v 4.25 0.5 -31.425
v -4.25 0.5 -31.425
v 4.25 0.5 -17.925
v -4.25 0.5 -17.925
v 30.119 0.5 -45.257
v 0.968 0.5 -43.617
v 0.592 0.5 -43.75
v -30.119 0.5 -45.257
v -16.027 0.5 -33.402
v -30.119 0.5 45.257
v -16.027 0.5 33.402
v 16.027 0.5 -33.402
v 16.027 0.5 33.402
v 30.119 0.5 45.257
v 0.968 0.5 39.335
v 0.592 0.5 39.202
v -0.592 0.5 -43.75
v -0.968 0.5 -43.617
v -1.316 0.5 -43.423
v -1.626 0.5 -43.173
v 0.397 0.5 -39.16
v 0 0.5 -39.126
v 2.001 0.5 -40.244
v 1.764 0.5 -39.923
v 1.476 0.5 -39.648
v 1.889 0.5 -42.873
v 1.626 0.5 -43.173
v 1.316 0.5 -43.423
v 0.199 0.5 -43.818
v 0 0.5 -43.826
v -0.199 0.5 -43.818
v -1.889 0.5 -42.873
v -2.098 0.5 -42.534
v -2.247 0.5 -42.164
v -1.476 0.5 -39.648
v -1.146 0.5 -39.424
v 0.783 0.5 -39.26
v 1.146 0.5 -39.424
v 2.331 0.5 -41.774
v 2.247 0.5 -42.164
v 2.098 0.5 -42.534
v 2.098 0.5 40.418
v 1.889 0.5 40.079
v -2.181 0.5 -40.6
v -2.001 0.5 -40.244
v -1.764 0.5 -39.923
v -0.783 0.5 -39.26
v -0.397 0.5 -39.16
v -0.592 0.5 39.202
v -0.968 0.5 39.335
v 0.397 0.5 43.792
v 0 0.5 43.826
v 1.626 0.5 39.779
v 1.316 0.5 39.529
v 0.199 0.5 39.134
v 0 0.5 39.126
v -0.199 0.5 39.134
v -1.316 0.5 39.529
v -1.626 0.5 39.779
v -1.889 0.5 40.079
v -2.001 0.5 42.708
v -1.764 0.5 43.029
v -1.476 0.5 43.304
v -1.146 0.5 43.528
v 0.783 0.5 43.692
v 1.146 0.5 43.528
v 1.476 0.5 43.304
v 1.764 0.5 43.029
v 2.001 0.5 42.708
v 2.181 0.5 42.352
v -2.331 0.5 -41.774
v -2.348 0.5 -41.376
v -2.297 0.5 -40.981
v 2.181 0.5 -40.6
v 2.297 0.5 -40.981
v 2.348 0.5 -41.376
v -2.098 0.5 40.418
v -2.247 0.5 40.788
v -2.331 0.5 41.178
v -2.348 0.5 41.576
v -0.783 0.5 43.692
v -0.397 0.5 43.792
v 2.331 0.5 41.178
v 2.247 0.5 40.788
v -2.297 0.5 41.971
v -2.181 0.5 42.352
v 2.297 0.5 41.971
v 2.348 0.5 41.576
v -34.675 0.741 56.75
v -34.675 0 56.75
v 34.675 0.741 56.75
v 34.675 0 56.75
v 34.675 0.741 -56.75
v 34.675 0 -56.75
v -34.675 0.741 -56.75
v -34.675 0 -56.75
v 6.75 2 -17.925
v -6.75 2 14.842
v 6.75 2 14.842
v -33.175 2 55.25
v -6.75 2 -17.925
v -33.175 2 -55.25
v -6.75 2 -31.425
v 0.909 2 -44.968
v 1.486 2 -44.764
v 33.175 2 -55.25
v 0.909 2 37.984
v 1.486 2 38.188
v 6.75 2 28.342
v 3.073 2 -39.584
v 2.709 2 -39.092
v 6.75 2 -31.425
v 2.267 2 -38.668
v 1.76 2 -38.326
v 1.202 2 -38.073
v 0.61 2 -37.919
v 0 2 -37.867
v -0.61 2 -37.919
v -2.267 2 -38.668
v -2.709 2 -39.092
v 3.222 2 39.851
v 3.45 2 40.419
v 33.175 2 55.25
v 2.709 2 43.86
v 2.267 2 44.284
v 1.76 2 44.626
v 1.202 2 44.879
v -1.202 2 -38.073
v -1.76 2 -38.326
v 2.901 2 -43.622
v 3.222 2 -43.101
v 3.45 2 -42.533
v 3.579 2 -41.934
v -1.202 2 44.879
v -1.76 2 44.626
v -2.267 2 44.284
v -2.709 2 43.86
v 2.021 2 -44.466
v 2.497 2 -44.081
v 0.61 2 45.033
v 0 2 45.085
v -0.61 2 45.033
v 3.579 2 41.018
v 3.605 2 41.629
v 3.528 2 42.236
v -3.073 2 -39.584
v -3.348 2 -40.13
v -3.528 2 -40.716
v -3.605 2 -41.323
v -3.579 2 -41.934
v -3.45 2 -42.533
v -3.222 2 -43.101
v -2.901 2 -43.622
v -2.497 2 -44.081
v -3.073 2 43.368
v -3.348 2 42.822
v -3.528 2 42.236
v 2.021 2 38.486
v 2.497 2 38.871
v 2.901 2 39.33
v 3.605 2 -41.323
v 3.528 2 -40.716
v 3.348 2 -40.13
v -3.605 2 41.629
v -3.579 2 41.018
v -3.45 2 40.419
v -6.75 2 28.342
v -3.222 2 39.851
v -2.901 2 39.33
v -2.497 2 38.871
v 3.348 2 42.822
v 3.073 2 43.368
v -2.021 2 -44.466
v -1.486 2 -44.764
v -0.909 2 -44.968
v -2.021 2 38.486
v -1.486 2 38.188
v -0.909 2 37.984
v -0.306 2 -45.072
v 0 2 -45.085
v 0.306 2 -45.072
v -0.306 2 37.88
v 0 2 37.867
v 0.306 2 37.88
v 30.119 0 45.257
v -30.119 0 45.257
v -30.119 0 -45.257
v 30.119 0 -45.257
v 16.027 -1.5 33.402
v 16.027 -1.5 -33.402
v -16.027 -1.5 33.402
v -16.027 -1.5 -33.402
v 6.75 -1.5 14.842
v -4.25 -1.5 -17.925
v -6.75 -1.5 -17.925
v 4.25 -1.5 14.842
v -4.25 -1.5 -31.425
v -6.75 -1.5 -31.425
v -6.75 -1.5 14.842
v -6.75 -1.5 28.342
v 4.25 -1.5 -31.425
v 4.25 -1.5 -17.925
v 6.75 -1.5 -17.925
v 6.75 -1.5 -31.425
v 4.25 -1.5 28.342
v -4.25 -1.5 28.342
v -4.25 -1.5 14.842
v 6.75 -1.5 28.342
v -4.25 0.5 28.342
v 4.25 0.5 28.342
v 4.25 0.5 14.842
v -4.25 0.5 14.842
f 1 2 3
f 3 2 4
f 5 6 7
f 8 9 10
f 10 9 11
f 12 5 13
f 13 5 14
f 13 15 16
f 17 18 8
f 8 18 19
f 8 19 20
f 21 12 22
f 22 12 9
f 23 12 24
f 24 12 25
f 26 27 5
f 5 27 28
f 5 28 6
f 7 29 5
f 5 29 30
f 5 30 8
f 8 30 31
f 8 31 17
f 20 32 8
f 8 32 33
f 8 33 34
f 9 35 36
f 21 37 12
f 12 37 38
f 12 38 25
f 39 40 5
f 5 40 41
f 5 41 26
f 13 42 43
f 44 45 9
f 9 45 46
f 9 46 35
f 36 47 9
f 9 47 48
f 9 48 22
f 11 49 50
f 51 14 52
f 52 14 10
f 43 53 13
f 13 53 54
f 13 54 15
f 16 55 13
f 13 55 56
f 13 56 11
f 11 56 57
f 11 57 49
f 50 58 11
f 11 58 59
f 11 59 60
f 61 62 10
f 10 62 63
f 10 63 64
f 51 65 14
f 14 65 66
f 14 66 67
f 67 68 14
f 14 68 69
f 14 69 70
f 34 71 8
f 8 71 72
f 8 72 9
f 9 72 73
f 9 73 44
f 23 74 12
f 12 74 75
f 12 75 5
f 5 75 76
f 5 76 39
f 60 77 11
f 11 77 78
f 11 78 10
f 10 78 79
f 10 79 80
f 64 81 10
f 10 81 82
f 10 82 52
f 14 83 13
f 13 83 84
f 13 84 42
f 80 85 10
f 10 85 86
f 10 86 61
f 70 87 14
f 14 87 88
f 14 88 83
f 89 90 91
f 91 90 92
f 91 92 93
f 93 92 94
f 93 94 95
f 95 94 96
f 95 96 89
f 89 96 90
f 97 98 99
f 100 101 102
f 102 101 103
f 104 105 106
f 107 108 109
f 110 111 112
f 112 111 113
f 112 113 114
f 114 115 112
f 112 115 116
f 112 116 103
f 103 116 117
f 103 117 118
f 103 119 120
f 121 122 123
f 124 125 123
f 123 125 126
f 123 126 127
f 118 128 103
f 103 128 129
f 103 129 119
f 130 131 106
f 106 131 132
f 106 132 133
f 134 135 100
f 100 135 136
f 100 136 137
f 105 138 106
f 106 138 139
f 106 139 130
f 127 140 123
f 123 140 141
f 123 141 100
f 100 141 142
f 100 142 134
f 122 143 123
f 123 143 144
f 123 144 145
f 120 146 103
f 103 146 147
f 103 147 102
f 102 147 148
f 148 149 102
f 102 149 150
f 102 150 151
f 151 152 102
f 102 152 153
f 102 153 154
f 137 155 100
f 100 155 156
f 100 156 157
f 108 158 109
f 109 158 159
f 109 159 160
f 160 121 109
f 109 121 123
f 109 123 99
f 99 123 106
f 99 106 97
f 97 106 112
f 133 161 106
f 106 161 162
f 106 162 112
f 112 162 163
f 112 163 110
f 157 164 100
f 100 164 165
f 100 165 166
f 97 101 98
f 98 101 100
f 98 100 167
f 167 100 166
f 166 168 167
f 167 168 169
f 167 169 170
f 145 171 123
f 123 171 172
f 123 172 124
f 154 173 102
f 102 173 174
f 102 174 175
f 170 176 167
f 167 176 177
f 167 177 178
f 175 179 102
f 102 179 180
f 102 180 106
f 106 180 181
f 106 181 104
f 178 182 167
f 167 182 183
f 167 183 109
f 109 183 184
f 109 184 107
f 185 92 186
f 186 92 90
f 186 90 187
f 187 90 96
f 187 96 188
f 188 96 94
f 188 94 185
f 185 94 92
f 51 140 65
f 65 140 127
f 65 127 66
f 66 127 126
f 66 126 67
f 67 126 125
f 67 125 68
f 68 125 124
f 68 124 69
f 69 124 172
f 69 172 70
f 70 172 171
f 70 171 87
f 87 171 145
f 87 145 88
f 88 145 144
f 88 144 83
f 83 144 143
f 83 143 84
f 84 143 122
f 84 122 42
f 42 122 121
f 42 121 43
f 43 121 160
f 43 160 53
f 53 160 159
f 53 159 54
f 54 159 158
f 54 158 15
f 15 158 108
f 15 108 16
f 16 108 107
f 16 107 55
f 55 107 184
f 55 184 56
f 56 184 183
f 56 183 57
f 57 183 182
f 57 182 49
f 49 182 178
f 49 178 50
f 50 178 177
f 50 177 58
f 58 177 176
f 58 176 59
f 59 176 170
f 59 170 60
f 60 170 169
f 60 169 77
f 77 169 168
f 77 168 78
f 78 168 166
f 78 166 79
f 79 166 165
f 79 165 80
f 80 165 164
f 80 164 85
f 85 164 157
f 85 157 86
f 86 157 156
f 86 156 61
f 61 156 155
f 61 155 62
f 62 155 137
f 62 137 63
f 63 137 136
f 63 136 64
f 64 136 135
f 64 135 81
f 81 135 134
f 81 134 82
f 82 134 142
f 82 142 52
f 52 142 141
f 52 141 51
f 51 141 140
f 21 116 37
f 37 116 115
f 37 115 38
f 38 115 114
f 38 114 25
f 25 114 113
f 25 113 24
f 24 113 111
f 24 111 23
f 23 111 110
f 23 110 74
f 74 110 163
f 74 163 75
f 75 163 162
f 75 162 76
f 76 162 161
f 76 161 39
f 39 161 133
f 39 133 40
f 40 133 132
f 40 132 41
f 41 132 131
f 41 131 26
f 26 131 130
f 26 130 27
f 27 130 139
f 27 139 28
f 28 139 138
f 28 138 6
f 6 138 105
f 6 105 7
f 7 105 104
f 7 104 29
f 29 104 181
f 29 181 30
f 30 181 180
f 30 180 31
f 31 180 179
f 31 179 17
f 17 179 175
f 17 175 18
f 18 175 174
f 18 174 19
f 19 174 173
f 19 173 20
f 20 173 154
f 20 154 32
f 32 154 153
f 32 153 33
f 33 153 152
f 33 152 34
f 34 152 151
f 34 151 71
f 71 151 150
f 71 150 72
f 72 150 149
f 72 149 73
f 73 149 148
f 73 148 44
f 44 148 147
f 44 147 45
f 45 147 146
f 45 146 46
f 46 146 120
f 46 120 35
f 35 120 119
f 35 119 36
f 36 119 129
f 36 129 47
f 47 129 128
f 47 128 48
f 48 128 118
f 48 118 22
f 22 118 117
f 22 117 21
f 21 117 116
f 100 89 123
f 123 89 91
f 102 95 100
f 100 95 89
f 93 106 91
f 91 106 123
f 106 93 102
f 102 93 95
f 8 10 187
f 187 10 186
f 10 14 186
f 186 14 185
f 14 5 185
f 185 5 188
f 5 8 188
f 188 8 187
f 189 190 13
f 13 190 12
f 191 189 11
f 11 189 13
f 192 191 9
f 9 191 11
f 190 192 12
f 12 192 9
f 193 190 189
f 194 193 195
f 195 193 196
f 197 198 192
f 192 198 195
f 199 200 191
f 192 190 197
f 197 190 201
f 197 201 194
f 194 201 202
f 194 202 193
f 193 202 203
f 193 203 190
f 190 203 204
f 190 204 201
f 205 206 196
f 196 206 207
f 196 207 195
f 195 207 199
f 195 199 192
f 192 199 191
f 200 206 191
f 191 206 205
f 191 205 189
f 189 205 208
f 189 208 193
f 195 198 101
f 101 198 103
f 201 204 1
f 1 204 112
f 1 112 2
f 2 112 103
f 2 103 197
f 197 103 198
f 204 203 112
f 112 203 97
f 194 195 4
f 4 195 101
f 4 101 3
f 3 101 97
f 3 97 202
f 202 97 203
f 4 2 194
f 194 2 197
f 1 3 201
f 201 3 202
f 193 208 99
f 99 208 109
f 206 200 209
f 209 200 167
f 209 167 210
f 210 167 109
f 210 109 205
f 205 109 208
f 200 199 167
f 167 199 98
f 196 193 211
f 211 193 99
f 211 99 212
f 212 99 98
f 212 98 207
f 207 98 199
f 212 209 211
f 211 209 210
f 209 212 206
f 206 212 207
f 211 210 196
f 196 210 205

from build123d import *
from OCP.BRepFilletAPI import BRepFilletAPI_MakeChamfer

# Parameters (mm, degrees)
SKETCH1_W           = 69.35
SKETCH1_H           = 113.5
BOSS_EXTRUDE5_DEPTH = 2
SKETCH2_R           = 2.35
CUT_EXTRUDE3_DEPTH  = 2.5
FACE_CHAMFER_SIZE   = 1.5
FACE_CHAMFER_SIZE2  = 1.258649447
SKETCH4_W           = 60.238416088
SKETCH4_H           = 90.514495008
CUT_EXTRUDE6_DEPTH  = 0.5
SKETCH7_W           = 32.053406032
SKETCH7_H           = 66.80437594
BOSS_EXTRUDE6_DEPTH = 2
SKETCH8_W           = 13.5
SKETCH8_H           = 13.5
CUT_EXTRUDE14_DEPTH = 1.5
SKETCH16_W          = 2.5
SKETCH16_H          = 13.5
CUT_EXTRUDE15_DEPTH = 3.5
SKETCH17_W          = 2.5
SKETCH17_H          = 13.5
CUT_EXTRUDE16_DEPTH = 3.5
SKETCH18_W          = 13.5
SKETCH18_H          = 13.5
CUT_EXTRUDE17_DEPTH = 1.5
SKETCH19_W          = 2.5
SKETCH19_H          = 13.5
CUT_EXTRUDE18_DEPTH = 2.5
SKETCH20_W          = 2.5
SKETCH20_H          = 13.5
CUT_EXTRUDE19_DEPTH = 2.5


with BuildPart() as part:
    # Sketch1 → Boss-Extrude5 (new body)
    with BuildSketch(Plane(origin=(0, 0, 0), x_dir=(1, 0, 0), z_dir=(0, 1, 0))):
        Rectangle(SKETCH1_W, SKETCH1_H)
    extrude(amount=BOSS_EXTRUDE5_DEPTH)

    # Sketch2 → Cut-Extrude3 (cut)
    with BuildSketch(Plane(origin=(0, 2, 0), x_dir=(1, 0, 0), z_dir=(0, 1, 0))):
        with Locations(Location((0, 41.476002696, 0), (0, 0, 270))):
            Circle(SKETCH2_R)
        with Locations(Location((0, -41.476002696, 0), (0, 0, 90))):
            Circle(SKETCH2_R)
    extrude(amount=-CUT_EXTRUDE3_DEPTH, mode=Mode.SUBTRACT)

    # face chamfer: one chamfer whose edges measure the first distance from different faces: ONE call of the kernel's chamfer builder (chamfer() names one face for all edges)
    face_chamfer_edges_1 = [part.edges().sort_by_distance(p)[0] for p in [
        (0, 2, -56.75),
        (-34.675, 2, 0),
        (0, 2, 56.75),
        (34.675, 2, 0),
    ]]
    face_chamfer_side_1 = [part.faces().sort_by_distance(p)[0] for p in [
        (0, 2, 0),
    ]]
    face_chamfer_edges_2 = [part.edges().sort_by_distance(p)[0] for p in [
        (0, 2, -43.826002696),
    ]]
    face_chamfer_side_2 = [part.faces().sort_by_distance(p)[0] for p in [
        (0, 1, -43.826002696),
    ]]
    face_chamfer_edges_3 = [part.edges().sort_by_distance(p)[0] for p in [
        (0, 2, 43.826002696),
    ]]
    face_chamfer_side_3 = [part.faces().sort_by_distance(p)[0] for p in [
        (0, 1, 43.826002696),
    ]]
    face_chamfer = BRepFilletAPI_MakeChamfer(part.part.solid().wrapped)
    for e in face_chamfer_edges_1:
        face_chamfer.Add(FACE_CHAMFER_SIZE, FACE_CHAMFER_SIZE2, e.wrapped, face_chamfer_side_1[0].wrapped)  # the first distance lies on this face
    for e in face_chamfer_edges_2:
        face_chamfer.Add(FACE_CHAMFER_SIZE, FACE_CHAMFER_SIZE2, e.wrapped, face_chamfer_side_2[0].wrapped)  # the first distance lies on this face
    for e in face_chamfer_edges_3:
        face_chamfer.Add(FACE_CHAMFER_SIZE, FACE_CHAMFER_SIZE2, e.wrapped, face_chamfer_side_3[0].wrapped)  # the first distance lies on this face
    add(Compound.cast(face_chamfer.Shape()), mode=Mode.REPLACE)

    # Sketch4 → Cut-Extrude6 (cut)
    with BuildSketch(Plane(origin=(0, 0, 0), x_dir=(-1, 0, 0), z_dir=(0, -1, 0))):
        Rectangle(SKETCH4_W, SKETCH4_H)
    extrude(amount=-CUT_EXTRUDE6_DEPTH, mode=Mode.SUBTRACT)

    # Sketch7 → Boss-Extrude6 (add)
    with BuildSketch(Plane(origin=(0, 0.5, 0), x_dir=(-1, 0, 0), z_dir=(0, -1, 0))):
        Rectangle(SKETCH7_W, SKETCH7_H)
    extrude(amount=BOSS_EXTRUDE6_DEPTH)

    # Sketch8 → Cut-Extrude14 (cut)
    with BuildSketch(Plane(origin=(0, 2, 0), x_dir=(1, 0, 0), z_dir=(0, 1, 0))):
        with Locations((0, 24.674775436)):
            Rectangle(SKETCH8_W, SKETCH8_H)
    extrude(amount=-CUT_EXTRUDE14_DEPTH, mode=Mode.SUBTRACT)

    # Sketch16 → Cut-Extrude15 (cut)
    with BuildSketch(Plane(origin=(0, 0.5, 0), x_dir=(1, 0, 0), z_dir=(0, 1, 0))):
        with Locations((-5.5, 24.674775436)):
            Rectangle(SKETCH16_W, SKETCH16_H)
    extrude(amount=-CUT_EXTRUDE15_DEPTH, mode=Mode.SUBTRACT)

    # Sketch17 → Cut-Extrude16 (cut)
    with BuildSketch(Plane(origin=(0, 0.5, 0), x_dir=(1, 0, 0), z_dir=(0, 1, 0))):
        with Locations((5.5, 24.674775436)):
            Rectangle(SKETCH17_W, SKETCH17_H)
    extrude(amount=-CUT_EXTRUDE16_DEPTH, mode=Mode.SUBTRACT)

    # Sketch18 → Cut-Extrude17 (cut)
    with BuildSketch(Plane(origin=(0, 2, 0), x_dir=(1, 0, 0), z_dir=(0, 1, 0))):
        with Locations((0, -21.592367817)):
            Rectangle(SKETCH18_W, SKETCH18_H)
    extrude(amount=-CUT_EXTRUDE17_DEPTH, mode=Mode.SUBTRACT)

    # Sketch19 → Cut-Extrude18 (cut)
    with BuildSketch(Plane(origin=(0, 0.5, 0), x_dir=(1, 0, 0), z_dir=(0, 1, 0))):
        with Locations((-5.5, -21.592367817)):
            Rectangle(SKETCH19_W, SKETCH19_H)
    extrude(amount=-CUT_EXTRUDE18_DEPTH, mode=Mode.SUBTRACT)

    # Sketch20 → Cut-Extrude19 (cut)
    with BuildSketch(Plane(origin=(0, 0.5, 0), x_dir=(1, 0, 0), z_dir=(0, 1, 0))):
        with Locations((5.5, -21.592367817)):
            Rectangle(SKETCH20_W, SKETCH20_H)
    extrude(amount=-CUT_EXTRUDE19_DEPTH, mode=Mode.SUBTRACT)


solid = part.part
